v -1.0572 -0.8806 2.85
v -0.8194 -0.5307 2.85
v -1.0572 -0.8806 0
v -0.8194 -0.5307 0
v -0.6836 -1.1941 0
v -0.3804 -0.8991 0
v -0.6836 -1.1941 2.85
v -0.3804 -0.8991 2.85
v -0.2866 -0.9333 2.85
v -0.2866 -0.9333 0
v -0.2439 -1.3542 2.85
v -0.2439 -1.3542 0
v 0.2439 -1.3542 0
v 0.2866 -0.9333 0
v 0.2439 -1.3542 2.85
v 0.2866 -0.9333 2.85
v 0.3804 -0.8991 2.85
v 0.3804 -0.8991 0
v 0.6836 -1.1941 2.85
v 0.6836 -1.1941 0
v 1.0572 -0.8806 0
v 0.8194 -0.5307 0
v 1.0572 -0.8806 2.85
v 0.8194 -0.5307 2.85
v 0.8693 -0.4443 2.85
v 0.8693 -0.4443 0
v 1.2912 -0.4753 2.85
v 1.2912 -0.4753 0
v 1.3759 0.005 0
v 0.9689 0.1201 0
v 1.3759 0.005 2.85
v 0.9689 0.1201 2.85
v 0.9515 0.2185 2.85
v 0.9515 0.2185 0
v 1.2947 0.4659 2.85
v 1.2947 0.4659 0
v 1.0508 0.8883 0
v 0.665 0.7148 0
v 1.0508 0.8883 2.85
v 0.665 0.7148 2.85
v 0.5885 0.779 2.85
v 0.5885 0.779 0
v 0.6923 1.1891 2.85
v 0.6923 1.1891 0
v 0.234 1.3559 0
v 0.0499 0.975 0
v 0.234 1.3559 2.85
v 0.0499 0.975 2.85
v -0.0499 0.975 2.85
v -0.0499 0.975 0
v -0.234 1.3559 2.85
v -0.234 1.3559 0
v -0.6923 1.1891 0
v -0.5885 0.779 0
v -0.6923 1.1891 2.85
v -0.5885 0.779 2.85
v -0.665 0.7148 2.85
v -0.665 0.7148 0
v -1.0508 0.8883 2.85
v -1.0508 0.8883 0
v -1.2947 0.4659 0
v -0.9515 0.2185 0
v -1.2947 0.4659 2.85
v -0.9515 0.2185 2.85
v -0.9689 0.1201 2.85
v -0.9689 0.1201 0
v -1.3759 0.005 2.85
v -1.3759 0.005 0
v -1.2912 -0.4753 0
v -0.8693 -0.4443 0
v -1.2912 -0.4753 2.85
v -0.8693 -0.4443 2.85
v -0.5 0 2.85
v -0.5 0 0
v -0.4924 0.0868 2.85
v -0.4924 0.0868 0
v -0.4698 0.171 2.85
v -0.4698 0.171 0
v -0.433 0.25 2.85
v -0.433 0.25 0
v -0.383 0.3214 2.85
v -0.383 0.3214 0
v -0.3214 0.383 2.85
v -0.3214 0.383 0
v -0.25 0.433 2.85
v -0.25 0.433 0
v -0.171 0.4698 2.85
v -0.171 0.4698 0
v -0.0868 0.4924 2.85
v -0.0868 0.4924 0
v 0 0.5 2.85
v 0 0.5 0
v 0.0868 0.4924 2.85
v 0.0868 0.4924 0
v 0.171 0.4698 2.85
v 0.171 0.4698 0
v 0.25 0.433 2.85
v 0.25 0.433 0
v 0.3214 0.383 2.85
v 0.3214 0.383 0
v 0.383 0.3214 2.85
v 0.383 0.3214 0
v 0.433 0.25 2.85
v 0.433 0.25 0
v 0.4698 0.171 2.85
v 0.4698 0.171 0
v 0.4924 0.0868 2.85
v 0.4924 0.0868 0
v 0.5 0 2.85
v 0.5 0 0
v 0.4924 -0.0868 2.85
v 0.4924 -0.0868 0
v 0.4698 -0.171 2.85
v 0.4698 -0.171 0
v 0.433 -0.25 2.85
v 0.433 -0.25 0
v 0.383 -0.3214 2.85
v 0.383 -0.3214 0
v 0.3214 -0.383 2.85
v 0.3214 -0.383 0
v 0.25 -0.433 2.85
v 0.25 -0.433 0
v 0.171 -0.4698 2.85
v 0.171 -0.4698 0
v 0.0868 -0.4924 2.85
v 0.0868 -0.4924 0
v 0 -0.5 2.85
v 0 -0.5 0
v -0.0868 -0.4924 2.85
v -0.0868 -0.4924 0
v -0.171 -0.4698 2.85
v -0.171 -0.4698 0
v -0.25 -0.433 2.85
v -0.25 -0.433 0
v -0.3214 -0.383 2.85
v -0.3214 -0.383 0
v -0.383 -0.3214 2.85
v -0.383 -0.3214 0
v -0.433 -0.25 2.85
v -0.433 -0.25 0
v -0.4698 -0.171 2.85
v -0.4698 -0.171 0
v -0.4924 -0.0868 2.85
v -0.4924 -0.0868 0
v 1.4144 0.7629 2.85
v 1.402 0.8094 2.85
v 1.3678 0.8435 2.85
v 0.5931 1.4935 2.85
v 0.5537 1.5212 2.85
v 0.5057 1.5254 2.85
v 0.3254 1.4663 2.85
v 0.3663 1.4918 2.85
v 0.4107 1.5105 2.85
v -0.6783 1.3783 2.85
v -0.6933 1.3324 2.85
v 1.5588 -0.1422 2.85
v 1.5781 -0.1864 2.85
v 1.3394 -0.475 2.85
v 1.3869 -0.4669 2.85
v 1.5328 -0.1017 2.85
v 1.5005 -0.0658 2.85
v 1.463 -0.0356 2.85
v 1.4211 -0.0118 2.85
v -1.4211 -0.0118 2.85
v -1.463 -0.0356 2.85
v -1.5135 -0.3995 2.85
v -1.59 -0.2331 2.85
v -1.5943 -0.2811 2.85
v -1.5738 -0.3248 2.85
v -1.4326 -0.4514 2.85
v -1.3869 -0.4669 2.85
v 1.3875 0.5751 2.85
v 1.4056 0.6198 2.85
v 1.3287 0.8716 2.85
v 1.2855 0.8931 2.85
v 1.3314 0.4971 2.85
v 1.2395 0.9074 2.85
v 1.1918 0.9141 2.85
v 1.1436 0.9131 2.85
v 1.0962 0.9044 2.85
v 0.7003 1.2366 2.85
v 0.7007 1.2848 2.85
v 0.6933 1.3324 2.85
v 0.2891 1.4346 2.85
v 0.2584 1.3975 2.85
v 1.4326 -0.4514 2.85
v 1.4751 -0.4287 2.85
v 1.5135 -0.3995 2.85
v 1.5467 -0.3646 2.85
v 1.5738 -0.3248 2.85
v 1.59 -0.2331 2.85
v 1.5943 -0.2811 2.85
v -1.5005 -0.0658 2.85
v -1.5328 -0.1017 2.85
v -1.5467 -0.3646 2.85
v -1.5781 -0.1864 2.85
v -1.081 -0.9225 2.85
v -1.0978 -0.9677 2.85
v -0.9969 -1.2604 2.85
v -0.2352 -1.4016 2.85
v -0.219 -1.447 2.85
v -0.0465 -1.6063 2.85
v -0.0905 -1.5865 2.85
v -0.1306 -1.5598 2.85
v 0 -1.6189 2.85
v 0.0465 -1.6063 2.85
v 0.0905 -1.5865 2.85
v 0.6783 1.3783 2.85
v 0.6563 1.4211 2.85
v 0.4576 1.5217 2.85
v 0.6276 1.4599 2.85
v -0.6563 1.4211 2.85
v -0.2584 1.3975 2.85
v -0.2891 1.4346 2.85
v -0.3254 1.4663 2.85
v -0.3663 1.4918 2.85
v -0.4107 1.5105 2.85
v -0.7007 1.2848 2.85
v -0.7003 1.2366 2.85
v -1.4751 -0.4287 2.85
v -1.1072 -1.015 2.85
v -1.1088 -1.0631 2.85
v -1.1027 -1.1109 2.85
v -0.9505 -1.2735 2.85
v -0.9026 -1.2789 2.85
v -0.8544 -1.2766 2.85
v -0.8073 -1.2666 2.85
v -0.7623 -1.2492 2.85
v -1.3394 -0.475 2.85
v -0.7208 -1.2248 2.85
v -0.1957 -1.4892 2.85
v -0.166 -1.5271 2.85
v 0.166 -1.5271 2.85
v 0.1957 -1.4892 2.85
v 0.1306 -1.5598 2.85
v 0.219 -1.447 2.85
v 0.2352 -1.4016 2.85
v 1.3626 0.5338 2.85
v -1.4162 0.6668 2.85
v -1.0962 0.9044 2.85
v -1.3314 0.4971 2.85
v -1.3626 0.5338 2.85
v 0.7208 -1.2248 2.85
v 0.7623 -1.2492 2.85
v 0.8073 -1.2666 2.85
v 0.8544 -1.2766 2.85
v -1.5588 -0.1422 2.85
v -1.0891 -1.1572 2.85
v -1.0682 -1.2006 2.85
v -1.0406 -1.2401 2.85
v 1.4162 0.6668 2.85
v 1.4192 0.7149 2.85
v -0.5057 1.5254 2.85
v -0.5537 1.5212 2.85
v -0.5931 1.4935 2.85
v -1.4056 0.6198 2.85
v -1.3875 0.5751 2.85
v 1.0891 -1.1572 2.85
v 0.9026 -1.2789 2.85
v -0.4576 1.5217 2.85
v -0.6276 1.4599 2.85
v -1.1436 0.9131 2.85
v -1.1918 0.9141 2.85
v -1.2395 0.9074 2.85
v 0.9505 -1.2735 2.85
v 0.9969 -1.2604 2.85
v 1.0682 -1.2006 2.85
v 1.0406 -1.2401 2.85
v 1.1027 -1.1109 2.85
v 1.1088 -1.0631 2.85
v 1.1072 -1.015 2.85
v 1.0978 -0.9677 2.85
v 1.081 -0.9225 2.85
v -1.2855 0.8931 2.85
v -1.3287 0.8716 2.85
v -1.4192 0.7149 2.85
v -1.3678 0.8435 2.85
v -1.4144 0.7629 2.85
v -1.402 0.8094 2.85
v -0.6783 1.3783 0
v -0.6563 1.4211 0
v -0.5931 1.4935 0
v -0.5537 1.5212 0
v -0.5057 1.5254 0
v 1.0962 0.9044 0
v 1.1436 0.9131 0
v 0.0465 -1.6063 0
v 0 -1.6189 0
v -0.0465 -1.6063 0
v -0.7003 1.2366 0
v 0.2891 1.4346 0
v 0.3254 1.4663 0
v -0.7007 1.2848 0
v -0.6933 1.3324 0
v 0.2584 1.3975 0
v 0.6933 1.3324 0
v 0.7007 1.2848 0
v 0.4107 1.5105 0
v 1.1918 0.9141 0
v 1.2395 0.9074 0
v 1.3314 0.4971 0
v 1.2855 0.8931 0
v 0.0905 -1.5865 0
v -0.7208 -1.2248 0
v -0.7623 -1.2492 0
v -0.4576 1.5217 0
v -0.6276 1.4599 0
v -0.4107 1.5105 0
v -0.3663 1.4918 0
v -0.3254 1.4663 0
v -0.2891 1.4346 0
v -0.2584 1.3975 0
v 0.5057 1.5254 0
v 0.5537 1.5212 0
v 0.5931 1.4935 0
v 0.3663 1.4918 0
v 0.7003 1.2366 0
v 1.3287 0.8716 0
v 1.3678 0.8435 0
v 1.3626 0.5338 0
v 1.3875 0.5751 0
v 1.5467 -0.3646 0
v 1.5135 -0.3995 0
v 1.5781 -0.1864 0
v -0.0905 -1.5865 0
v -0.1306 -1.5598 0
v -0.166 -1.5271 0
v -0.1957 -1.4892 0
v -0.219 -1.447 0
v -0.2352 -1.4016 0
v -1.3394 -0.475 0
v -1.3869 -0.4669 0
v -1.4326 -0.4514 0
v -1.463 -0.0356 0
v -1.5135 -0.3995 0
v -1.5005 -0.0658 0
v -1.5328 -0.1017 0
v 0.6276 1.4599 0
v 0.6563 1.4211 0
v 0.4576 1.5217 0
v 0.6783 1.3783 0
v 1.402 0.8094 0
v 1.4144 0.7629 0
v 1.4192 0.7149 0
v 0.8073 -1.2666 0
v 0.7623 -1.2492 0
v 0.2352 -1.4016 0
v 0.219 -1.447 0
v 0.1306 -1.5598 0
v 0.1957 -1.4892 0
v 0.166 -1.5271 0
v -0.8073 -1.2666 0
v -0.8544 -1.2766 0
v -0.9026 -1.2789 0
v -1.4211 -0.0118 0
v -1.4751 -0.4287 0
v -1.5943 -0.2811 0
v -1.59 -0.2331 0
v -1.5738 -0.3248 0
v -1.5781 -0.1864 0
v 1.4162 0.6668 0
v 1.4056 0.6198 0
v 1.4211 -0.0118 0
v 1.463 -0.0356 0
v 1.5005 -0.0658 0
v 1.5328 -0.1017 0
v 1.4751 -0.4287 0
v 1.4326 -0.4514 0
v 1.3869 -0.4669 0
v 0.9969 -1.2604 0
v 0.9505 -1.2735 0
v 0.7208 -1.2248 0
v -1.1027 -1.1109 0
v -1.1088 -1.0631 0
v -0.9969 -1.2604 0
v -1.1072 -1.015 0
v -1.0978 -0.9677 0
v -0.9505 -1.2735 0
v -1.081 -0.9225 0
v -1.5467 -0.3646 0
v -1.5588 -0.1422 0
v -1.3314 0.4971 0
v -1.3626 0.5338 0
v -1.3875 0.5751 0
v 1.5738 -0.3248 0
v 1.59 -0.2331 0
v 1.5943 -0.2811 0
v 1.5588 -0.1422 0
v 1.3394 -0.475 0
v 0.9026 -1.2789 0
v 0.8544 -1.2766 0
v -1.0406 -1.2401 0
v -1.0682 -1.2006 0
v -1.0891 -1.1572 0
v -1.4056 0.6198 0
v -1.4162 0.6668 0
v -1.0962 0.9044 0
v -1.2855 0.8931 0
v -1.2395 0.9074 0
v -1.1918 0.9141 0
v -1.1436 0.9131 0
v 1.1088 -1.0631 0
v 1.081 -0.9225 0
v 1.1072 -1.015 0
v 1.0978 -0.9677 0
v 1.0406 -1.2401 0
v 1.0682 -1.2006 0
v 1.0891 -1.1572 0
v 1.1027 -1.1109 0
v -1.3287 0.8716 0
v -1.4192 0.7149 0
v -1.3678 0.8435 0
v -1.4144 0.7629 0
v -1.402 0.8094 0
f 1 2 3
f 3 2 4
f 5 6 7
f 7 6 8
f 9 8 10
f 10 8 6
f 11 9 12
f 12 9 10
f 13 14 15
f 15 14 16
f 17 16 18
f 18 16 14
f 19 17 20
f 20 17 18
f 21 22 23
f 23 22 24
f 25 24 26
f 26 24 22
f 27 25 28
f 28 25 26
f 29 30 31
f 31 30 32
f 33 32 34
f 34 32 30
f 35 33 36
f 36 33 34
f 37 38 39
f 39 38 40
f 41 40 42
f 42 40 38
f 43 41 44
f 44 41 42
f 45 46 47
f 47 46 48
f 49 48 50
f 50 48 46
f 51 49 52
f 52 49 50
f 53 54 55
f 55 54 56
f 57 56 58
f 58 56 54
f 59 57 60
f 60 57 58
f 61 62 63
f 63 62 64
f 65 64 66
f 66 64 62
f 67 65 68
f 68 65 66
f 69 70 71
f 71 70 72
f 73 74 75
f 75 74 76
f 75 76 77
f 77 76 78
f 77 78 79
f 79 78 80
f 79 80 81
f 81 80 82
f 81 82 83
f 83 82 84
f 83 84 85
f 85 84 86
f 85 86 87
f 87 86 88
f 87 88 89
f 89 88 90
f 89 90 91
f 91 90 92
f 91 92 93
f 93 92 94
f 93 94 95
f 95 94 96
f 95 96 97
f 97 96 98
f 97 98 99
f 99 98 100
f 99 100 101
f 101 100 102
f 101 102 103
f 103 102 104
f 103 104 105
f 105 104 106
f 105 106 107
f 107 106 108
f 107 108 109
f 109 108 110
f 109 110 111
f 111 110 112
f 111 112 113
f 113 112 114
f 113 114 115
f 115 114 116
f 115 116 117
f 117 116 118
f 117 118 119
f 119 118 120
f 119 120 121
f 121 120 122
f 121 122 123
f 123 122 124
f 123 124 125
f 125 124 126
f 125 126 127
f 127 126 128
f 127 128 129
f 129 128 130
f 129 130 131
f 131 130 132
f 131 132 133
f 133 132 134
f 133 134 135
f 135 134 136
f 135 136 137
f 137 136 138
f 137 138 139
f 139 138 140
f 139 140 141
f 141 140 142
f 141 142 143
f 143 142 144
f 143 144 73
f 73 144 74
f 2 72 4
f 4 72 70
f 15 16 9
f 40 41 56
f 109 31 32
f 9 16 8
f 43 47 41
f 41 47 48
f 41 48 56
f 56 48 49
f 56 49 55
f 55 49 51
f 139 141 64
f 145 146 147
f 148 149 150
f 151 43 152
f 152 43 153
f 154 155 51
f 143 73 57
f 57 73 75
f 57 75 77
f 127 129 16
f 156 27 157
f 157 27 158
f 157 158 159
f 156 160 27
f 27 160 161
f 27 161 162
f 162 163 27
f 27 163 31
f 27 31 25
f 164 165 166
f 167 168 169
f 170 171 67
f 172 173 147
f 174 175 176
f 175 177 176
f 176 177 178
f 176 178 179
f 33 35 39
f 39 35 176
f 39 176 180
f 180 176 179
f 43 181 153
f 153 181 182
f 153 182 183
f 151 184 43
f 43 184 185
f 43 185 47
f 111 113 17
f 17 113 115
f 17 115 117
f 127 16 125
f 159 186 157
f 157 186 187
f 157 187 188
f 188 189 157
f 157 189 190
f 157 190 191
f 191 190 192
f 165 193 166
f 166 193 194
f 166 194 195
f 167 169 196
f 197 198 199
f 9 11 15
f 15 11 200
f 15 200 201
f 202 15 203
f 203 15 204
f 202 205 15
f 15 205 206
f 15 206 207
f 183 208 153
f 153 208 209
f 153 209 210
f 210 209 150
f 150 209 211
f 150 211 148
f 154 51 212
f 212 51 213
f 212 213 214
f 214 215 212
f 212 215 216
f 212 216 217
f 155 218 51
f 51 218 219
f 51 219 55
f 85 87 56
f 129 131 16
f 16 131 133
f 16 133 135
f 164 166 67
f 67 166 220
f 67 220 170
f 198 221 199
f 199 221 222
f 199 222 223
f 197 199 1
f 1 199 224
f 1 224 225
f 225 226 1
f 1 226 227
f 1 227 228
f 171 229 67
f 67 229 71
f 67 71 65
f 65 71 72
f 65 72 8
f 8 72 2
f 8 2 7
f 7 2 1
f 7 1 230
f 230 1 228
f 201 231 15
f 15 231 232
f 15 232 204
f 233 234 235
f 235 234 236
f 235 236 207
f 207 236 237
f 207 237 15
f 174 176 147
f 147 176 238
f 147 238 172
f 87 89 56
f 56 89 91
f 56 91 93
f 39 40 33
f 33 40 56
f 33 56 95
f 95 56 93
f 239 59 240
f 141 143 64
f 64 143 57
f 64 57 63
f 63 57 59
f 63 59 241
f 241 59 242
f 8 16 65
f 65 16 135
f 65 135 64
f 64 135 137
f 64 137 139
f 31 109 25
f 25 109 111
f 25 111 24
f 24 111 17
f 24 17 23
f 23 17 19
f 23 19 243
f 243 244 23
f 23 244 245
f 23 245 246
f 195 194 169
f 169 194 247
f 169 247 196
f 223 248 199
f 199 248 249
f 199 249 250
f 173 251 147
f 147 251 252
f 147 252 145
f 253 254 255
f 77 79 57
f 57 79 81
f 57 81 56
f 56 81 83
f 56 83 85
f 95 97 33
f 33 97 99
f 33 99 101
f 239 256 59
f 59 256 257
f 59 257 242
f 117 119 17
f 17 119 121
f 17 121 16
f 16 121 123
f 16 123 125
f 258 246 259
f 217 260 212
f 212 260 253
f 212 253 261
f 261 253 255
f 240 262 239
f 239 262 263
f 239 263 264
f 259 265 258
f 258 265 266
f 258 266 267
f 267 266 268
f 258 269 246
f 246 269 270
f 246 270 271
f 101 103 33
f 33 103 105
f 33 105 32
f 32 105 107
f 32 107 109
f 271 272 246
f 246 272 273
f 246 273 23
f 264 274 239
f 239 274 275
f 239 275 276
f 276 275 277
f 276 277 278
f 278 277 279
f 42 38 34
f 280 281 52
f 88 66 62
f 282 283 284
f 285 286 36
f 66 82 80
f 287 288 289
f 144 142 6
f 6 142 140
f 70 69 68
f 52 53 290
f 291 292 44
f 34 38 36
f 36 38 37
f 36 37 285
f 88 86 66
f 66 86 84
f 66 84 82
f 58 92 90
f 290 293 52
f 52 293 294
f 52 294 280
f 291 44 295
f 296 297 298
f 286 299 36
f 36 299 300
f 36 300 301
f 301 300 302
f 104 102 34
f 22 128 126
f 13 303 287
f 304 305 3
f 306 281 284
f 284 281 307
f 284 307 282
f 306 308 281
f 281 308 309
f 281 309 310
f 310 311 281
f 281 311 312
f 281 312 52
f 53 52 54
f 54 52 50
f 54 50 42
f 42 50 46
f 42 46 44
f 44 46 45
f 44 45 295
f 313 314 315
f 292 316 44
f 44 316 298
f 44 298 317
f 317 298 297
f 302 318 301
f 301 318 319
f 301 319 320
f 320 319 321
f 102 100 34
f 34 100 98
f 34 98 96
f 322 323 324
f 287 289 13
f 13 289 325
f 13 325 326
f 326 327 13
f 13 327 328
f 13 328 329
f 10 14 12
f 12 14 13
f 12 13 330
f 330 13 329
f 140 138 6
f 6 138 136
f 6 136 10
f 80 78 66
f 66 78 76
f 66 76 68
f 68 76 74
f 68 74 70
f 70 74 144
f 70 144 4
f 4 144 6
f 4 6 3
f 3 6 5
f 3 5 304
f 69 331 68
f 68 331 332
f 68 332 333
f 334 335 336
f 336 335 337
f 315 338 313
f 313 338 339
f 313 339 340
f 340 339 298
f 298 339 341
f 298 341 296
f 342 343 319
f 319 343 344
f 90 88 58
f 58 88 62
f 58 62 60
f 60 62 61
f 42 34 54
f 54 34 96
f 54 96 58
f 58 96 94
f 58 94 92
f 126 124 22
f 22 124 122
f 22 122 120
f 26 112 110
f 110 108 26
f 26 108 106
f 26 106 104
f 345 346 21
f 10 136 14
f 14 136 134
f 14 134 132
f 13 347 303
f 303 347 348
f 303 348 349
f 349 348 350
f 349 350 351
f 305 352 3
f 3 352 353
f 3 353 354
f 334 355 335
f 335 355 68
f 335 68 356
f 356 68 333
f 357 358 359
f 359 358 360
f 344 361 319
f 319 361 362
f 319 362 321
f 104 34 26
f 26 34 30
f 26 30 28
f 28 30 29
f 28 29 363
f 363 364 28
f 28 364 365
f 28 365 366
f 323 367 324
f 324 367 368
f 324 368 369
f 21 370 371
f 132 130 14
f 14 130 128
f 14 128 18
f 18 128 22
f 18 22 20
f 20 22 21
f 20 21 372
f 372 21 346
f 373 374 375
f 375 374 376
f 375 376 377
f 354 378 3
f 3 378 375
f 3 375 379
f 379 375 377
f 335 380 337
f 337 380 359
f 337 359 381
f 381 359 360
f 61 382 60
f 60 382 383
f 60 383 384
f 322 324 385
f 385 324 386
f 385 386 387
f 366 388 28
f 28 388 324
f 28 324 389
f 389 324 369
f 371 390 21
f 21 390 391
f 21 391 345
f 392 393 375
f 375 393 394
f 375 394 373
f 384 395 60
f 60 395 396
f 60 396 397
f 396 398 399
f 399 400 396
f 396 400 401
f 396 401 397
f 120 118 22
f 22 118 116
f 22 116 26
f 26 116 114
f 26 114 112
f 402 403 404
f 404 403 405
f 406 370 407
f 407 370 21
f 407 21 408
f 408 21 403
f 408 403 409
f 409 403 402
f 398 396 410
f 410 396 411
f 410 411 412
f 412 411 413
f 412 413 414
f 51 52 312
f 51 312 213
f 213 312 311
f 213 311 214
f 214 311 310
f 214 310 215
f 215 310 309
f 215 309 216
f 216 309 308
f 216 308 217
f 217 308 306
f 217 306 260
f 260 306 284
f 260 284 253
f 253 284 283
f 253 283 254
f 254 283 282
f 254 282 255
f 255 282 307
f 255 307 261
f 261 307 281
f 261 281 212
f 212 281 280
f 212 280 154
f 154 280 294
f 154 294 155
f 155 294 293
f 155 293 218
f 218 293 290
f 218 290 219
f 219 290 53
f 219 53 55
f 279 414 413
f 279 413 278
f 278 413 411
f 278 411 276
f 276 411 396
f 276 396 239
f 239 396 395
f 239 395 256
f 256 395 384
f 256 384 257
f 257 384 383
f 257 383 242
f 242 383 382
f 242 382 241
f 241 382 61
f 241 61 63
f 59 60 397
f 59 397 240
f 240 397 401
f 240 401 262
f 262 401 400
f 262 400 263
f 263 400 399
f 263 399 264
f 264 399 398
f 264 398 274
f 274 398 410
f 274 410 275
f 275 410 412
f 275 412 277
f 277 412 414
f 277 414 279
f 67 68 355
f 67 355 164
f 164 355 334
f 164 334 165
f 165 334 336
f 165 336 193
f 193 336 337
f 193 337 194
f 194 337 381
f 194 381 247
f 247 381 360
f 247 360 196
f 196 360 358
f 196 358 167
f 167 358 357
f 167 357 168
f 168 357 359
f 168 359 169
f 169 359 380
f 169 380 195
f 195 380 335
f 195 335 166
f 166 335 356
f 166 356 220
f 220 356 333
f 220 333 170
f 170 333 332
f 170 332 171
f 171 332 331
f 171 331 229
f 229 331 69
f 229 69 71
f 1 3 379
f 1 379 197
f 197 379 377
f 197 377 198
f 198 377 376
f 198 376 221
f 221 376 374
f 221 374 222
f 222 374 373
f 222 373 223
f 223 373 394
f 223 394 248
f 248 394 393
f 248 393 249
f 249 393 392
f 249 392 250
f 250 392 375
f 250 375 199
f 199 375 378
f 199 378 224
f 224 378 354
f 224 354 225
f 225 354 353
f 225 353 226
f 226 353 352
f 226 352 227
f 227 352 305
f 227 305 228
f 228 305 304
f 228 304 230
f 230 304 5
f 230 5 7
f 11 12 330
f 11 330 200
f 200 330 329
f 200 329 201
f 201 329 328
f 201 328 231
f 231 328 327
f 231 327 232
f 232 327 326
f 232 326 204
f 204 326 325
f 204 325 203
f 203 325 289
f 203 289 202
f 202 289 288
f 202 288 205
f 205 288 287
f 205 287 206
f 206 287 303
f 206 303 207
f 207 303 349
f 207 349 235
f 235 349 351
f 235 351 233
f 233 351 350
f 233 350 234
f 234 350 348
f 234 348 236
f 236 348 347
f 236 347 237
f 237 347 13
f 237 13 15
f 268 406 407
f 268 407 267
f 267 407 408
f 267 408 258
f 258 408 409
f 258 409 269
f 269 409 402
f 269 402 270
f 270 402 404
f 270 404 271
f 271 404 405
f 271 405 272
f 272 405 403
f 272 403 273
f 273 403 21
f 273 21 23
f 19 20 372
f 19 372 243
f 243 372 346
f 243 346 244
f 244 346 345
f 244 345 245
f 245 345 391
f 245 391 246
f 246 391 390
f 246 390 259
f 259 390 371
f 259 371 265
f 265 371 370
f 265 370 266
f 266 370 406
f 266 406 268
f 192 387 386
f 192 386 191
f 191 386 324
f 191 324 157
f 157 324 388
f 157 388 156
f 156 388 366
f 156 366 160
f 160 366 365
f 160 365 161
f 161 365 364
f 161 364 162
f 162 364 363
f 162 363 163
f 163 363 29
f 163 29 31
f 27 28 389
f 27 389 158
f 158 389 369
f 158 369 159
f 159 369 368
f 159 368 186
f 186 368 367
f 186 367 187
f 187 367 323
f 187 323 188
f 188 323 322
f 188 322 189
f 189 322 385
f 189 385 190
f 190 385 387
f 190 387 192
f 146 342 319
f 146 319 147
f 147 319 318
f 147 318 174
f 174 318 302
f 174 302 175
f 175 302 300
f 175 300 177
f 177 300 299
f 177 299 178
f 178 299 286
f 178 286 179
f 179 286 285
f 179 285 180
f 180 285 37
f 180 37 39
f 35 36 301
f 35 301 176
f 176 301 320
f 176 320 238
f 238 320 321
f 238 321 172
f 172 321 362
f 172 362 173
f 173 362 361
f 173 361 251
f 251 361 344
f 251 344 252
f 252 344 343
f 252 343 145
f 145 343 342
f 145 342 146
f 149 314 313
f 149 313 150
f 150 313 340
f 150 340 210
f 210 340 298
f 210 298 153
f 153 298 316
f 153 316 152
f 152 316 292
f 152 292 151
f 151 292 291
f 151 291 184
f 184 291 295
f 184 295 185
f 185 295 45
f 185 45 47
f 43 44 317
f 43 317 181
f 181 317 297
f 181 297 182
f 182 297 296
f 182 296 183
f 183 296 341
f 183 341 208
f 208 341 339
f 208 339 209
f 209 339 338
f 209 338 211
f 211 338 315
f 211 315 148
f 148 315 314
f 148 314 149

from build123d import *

# Parameters (mm, degrees)
SKETCH2_R           = 0.5
BOSS_EXTRUDE1_DEPTH = 2.85
FILLET2_R           = 0.3
FILLET3_R           = 0.3


with BuildPart() as part:
    # Sketch2 → Boss-Extrude1 (new body)
    with BuildSketch(Plane.XY):
        with BuildLine():
            Line((-0.819411063, -0.530738407), (-1.201999847, -1.093536176))
            ThreePointArc((-1.201999847, -1.093536176), (-1.044529866, -1.24482222), (-0.868197821, -1.373629332))
            Line((-0.868197821, -1.373629332), (-0.38038606, -0.899124125))
            Line((-0.38038606, -0.899124125), (-0.286553219, -0.933276486))
            Line((-0.286553219, -0.933276486), (-0.217873799, -1.610327919))
            ThreePointArc((-0.217873799, -1.610327919), (0, -1.625), (0.217873799, -1.610327919))
            Line((0.217873799, -1.610327919), (0.286553219, -0.933276486))
            Line((0.286553219, -0.933276486), (0.38038606, -0.899124125))
            Line((0.38038606, -0.899124125), (0.868197821, -1.373629332))
            ThreePointArc((0.868197821, -1.373629332), (1.044529866, -1.24482222), (1.201999847, -1.093536176))
            Line((1.201999847, -1.093536176), (0.819411063, -0.530738407))
            Line((0.819411063, -0.530738407), (0.869338475, -0.444261593))
            Line((0.869338475, -0.444261593), (1.548030032, -0.494194315))
            ThreePointArc((1.548030032, -0.494194315), (1.600312599, -0.282178289), (1.623696808, -0.065066703))
            Line((1.623696808, -0.065066703), (0.968857363, 0.120138071))
            Line((0.968857363, 0.120138071), (0.951517755, 0.218475876))
            Line((0.951517755, 0.218475876), (1.503521786, 0.616479715))
            ThreePointArc((1.503521786, 0.616479715), (1.407291281, 0.8125), (1.285647987, 0.993848204))
            Line((1.285647987, 0.993848204), (0.664964536, 0.71480061))
            Line((0.664964536, 0.71480061), (0.588471303, 0.778986054))
            Line((0.588471303, 0.778986054), (0.755498987, 1.438696035))
            ThreePointArc((0.755498987, 1.438696035), (0.555782733, 1.527000509), (0.346030185, 1.587730491))
            Line((0.346030185, 1.587730491), (0.049927412, 0.975))
            Line((0.049927412, 0.975), (-0.049927412, 0.975))
            Line((-0.049927412, 0.975), (-0.346030185, 1.587730491))
            ThreePointArc((-0.346030185, 1.587730491), (-0.555782733, 1.527000509), (-0.755498987, 1.438696035))
            Line((-0.755498987, 1.438696035), (-0.588471303, 0.778986054))
            Line((-0.588471303, 0.778986054), (-0.664964536, 0.71480061))
            Line((-0.664964536, 0.71480061), (-1.285647987, 0.993848204))
            ThreePointArc((-1.285647987, 0.993848204), (-1.407291281, 0.8125), (-1.503521786, 0.616479715))
            Line((-1.503521786, 0.616479715), (-0.951517755, 0.218475876))
            Line((-0.951517755, 0.218475876), (-0.968857363, 0.120138071))
            Line((-0.968857363, 0.120138071), (-1.623696808, -0.065066703))
            ThreePointArc((-1.623696808, -0.065066703), (-1.600312599, -0.282178289), (-1.548030032, -0.494194315))
            Line((-1.548030032, -0.494194315), (-0.869338475, -0.444261593))
            Line((-0.869338475, -0.444261593), (-0.819411063, -0.530738407))
        make_face()
        Circle(SKETCH2_R, mode=Mode.SUBTRACT)
    extrude(amount=BOSS_EXTRUDE1_DEPTH)

    # Fillet2
    # the kernel refuses this fillet: 0.3 mm, written as the material it takes off along each edge
    with BuildSketch(Plane(origin=(-0.755498987, 1.438696035, -0.712889988), x_dir=(0.9227293829485229, 0.38544842176799504, 0), z_dir=(0, 0, 1))) as fillet2_piece_1:
        with BuildLine():
            CenterArc((0.258833903, -0.298843015), FILLET2_R, 84.966378176, 86.569826399)
            Line((-0.037898816, -0.254687685), (0, 0))
            ThreePointArc((0, 0), (0.142577998, 0.006267003), (0.285155995, 0))
        make_face()
    extrude(amount=4.275779976, mode=Mode.SUBTRACT)
    with BuildSketch(Plane(origin=(-0.346030185, 1.587730491, -0.712889988), x_dir=(0.4351087462469743, -0.9003779089578919, 0), z_dir=(0, 0, 1))) as fillet2_piece_2:
        with BuildLine():
            CenterArc((0.257492014, -0.3), FILLET2_R, 90, 86.569826399)
            ThreePointArc((-0.041970524, -0.28205038), (-0.027184012, -0.140102785), (0, 0))
            Line((0, 0), (0.257492014, 0))
        make_face()
    extrude(amount=4.275779976, mode=Mode.SUBTRACT)

    # Fillet3
    # the kernel refuses this fillet: 0.3 mm, written as the material it takes off along each edge
    with BuildSketch(Plane(origin=(-1.285647987, 0.993848204, -0.712889988), x_dir=(-0.5398228699721833, -0.8417786342352693, 0), z_dir=(0, 0, 1)), Plane(origin=(-1.201999847, -1.093536176, -0.712889988), x_dir=(0.7352508676813189, -0.6777950734358195, 0), z_dir=(0, 0, 1)), Plane(origin=(-0.217873799, -1.610327919, -0.712889988), x_dir=(0.998913116596804, -0.04661100182209958, 0), z_dir=(0, 0, 1)), Plane(origin=(0.868197821, -1.373629332, -0.712889988), x_dir=(0.795172816573963, 0.6063828755677642, 0), z_dir=(0, 0, 1)), Plane(origin=(1.548030032, -0.494194315, -0.712889988), x_dir=(0.21936231831469838, 0.9756434662844828, 0), z_dir=(0, 0, 1)), Plane(origin=(1.503521786, 0.616479715, -0.712889988), x_dir=(-0.45909024662462017, 0.8883896360573694, 0), z_dir=(0, 0, 1)), Plane(origin=(0.755498987, 1.438696035, -0.712889988), x_dir=(-0.922729382948523, 0.38544842176799504, 0), z_dir=(0, 0, 1))) as fillet3_piece_1:
        with BuildLine():
            CenterArc((0.258833903, 0.298843015), FILLET3_R, 188.463795424, 86.569826399)
            Line((-0.037898816, 0.254687685), (0, 0))
            ThreePointArc((0, 0), (0.142577998, -0.006267003), (0.285155995, 0))
        make_face()
    extrude(amount=4.275779976, mode=Mode.SUBTRACT)
    with BuildSketch(Plane(origin=(-1.503521786, 0.616479715, -0.712889988), x_dir=(0.8111433045099228, -0.5848474498095403, 0), z_dir=(0, 0, 1)), Plane(origin=(-1.548030032, -0.494194315, -0.712889988), x_dir=(0.9973045152873341, 0.07337372682026923, 0), z_dir=(0, 0, 1)), Plane(origin=(-0.868197821, -1.373629332, -0.712889988), x_dir=(0.7168158595567345, 0.6972625212127351, 0), z_dir=(0, 0, 1)), Plane(origin=(0.217873799, -1.610327919, -0.712889988), x_dir=(0.1009210966186461, 0.9948944327200197, 0), z_dir=(0, 0, 1)), Plane(origin=(1.201999847, -1.093536176, -0.712889988), x_dir=(-0.5621957690403601, 0.8270041821376227, 0), z_dir=(0, 0, 1)), Plane(origin=(1.623696808, -0.065066703, -0.712889988), x_dir=(-0.962254986255382, 0.2721494836053427, 0), z_dir=(0, 0, 1)), Plane(origin=(1.285647987, 0.993848204, -0.712889988), x_dir=(-0.912064401128568, -0.41004698291047903, 0), z_dir=(0, 0, 1)), Plane(origin=(0.346030185, 1.587730491, -0.712889988), x_dir=(-0.435108746246974, -0.9003779089578923, 0), z_dir=(0, 0, 1))) as fillet3_piece_2:
        with BuildLine():
            CenterArc((0.257492014, 0.3), FILLET3_R, 183.430173601, 86.569826399)
            ThreePointArc((-0.041970524, 0.28205038), (-0.027184012, 0.140102785), (0, 0))
            Line((0, 0), (0.257492014, 0))
        make_face()
    extrude(amount=4.275779976, mode=Mode.SUBTRACT)
    with BuildSketch(Plane(origin=(-1.623696808, -0.065066703, -0.712889988), x_dir=(0.9622549862553823, 0.27214948360534136, 0), z_dir=(0, 0, 1))) as fillet3_piece_3:
        with BuildLine():
            CenterArc((0.257492014, -0.3), FILLET3_R, 90, 86.569826399)
            ThreePointArc((-0.041970524, -0.28205038), (-0.027184012, -0.140102785), (0, 0))
            Line((0, 0), (0.257492014, 0))
        make_face()
    extrude(amount=4.275779976, mode=Mode.SUBTRACT)


solid = part.part
